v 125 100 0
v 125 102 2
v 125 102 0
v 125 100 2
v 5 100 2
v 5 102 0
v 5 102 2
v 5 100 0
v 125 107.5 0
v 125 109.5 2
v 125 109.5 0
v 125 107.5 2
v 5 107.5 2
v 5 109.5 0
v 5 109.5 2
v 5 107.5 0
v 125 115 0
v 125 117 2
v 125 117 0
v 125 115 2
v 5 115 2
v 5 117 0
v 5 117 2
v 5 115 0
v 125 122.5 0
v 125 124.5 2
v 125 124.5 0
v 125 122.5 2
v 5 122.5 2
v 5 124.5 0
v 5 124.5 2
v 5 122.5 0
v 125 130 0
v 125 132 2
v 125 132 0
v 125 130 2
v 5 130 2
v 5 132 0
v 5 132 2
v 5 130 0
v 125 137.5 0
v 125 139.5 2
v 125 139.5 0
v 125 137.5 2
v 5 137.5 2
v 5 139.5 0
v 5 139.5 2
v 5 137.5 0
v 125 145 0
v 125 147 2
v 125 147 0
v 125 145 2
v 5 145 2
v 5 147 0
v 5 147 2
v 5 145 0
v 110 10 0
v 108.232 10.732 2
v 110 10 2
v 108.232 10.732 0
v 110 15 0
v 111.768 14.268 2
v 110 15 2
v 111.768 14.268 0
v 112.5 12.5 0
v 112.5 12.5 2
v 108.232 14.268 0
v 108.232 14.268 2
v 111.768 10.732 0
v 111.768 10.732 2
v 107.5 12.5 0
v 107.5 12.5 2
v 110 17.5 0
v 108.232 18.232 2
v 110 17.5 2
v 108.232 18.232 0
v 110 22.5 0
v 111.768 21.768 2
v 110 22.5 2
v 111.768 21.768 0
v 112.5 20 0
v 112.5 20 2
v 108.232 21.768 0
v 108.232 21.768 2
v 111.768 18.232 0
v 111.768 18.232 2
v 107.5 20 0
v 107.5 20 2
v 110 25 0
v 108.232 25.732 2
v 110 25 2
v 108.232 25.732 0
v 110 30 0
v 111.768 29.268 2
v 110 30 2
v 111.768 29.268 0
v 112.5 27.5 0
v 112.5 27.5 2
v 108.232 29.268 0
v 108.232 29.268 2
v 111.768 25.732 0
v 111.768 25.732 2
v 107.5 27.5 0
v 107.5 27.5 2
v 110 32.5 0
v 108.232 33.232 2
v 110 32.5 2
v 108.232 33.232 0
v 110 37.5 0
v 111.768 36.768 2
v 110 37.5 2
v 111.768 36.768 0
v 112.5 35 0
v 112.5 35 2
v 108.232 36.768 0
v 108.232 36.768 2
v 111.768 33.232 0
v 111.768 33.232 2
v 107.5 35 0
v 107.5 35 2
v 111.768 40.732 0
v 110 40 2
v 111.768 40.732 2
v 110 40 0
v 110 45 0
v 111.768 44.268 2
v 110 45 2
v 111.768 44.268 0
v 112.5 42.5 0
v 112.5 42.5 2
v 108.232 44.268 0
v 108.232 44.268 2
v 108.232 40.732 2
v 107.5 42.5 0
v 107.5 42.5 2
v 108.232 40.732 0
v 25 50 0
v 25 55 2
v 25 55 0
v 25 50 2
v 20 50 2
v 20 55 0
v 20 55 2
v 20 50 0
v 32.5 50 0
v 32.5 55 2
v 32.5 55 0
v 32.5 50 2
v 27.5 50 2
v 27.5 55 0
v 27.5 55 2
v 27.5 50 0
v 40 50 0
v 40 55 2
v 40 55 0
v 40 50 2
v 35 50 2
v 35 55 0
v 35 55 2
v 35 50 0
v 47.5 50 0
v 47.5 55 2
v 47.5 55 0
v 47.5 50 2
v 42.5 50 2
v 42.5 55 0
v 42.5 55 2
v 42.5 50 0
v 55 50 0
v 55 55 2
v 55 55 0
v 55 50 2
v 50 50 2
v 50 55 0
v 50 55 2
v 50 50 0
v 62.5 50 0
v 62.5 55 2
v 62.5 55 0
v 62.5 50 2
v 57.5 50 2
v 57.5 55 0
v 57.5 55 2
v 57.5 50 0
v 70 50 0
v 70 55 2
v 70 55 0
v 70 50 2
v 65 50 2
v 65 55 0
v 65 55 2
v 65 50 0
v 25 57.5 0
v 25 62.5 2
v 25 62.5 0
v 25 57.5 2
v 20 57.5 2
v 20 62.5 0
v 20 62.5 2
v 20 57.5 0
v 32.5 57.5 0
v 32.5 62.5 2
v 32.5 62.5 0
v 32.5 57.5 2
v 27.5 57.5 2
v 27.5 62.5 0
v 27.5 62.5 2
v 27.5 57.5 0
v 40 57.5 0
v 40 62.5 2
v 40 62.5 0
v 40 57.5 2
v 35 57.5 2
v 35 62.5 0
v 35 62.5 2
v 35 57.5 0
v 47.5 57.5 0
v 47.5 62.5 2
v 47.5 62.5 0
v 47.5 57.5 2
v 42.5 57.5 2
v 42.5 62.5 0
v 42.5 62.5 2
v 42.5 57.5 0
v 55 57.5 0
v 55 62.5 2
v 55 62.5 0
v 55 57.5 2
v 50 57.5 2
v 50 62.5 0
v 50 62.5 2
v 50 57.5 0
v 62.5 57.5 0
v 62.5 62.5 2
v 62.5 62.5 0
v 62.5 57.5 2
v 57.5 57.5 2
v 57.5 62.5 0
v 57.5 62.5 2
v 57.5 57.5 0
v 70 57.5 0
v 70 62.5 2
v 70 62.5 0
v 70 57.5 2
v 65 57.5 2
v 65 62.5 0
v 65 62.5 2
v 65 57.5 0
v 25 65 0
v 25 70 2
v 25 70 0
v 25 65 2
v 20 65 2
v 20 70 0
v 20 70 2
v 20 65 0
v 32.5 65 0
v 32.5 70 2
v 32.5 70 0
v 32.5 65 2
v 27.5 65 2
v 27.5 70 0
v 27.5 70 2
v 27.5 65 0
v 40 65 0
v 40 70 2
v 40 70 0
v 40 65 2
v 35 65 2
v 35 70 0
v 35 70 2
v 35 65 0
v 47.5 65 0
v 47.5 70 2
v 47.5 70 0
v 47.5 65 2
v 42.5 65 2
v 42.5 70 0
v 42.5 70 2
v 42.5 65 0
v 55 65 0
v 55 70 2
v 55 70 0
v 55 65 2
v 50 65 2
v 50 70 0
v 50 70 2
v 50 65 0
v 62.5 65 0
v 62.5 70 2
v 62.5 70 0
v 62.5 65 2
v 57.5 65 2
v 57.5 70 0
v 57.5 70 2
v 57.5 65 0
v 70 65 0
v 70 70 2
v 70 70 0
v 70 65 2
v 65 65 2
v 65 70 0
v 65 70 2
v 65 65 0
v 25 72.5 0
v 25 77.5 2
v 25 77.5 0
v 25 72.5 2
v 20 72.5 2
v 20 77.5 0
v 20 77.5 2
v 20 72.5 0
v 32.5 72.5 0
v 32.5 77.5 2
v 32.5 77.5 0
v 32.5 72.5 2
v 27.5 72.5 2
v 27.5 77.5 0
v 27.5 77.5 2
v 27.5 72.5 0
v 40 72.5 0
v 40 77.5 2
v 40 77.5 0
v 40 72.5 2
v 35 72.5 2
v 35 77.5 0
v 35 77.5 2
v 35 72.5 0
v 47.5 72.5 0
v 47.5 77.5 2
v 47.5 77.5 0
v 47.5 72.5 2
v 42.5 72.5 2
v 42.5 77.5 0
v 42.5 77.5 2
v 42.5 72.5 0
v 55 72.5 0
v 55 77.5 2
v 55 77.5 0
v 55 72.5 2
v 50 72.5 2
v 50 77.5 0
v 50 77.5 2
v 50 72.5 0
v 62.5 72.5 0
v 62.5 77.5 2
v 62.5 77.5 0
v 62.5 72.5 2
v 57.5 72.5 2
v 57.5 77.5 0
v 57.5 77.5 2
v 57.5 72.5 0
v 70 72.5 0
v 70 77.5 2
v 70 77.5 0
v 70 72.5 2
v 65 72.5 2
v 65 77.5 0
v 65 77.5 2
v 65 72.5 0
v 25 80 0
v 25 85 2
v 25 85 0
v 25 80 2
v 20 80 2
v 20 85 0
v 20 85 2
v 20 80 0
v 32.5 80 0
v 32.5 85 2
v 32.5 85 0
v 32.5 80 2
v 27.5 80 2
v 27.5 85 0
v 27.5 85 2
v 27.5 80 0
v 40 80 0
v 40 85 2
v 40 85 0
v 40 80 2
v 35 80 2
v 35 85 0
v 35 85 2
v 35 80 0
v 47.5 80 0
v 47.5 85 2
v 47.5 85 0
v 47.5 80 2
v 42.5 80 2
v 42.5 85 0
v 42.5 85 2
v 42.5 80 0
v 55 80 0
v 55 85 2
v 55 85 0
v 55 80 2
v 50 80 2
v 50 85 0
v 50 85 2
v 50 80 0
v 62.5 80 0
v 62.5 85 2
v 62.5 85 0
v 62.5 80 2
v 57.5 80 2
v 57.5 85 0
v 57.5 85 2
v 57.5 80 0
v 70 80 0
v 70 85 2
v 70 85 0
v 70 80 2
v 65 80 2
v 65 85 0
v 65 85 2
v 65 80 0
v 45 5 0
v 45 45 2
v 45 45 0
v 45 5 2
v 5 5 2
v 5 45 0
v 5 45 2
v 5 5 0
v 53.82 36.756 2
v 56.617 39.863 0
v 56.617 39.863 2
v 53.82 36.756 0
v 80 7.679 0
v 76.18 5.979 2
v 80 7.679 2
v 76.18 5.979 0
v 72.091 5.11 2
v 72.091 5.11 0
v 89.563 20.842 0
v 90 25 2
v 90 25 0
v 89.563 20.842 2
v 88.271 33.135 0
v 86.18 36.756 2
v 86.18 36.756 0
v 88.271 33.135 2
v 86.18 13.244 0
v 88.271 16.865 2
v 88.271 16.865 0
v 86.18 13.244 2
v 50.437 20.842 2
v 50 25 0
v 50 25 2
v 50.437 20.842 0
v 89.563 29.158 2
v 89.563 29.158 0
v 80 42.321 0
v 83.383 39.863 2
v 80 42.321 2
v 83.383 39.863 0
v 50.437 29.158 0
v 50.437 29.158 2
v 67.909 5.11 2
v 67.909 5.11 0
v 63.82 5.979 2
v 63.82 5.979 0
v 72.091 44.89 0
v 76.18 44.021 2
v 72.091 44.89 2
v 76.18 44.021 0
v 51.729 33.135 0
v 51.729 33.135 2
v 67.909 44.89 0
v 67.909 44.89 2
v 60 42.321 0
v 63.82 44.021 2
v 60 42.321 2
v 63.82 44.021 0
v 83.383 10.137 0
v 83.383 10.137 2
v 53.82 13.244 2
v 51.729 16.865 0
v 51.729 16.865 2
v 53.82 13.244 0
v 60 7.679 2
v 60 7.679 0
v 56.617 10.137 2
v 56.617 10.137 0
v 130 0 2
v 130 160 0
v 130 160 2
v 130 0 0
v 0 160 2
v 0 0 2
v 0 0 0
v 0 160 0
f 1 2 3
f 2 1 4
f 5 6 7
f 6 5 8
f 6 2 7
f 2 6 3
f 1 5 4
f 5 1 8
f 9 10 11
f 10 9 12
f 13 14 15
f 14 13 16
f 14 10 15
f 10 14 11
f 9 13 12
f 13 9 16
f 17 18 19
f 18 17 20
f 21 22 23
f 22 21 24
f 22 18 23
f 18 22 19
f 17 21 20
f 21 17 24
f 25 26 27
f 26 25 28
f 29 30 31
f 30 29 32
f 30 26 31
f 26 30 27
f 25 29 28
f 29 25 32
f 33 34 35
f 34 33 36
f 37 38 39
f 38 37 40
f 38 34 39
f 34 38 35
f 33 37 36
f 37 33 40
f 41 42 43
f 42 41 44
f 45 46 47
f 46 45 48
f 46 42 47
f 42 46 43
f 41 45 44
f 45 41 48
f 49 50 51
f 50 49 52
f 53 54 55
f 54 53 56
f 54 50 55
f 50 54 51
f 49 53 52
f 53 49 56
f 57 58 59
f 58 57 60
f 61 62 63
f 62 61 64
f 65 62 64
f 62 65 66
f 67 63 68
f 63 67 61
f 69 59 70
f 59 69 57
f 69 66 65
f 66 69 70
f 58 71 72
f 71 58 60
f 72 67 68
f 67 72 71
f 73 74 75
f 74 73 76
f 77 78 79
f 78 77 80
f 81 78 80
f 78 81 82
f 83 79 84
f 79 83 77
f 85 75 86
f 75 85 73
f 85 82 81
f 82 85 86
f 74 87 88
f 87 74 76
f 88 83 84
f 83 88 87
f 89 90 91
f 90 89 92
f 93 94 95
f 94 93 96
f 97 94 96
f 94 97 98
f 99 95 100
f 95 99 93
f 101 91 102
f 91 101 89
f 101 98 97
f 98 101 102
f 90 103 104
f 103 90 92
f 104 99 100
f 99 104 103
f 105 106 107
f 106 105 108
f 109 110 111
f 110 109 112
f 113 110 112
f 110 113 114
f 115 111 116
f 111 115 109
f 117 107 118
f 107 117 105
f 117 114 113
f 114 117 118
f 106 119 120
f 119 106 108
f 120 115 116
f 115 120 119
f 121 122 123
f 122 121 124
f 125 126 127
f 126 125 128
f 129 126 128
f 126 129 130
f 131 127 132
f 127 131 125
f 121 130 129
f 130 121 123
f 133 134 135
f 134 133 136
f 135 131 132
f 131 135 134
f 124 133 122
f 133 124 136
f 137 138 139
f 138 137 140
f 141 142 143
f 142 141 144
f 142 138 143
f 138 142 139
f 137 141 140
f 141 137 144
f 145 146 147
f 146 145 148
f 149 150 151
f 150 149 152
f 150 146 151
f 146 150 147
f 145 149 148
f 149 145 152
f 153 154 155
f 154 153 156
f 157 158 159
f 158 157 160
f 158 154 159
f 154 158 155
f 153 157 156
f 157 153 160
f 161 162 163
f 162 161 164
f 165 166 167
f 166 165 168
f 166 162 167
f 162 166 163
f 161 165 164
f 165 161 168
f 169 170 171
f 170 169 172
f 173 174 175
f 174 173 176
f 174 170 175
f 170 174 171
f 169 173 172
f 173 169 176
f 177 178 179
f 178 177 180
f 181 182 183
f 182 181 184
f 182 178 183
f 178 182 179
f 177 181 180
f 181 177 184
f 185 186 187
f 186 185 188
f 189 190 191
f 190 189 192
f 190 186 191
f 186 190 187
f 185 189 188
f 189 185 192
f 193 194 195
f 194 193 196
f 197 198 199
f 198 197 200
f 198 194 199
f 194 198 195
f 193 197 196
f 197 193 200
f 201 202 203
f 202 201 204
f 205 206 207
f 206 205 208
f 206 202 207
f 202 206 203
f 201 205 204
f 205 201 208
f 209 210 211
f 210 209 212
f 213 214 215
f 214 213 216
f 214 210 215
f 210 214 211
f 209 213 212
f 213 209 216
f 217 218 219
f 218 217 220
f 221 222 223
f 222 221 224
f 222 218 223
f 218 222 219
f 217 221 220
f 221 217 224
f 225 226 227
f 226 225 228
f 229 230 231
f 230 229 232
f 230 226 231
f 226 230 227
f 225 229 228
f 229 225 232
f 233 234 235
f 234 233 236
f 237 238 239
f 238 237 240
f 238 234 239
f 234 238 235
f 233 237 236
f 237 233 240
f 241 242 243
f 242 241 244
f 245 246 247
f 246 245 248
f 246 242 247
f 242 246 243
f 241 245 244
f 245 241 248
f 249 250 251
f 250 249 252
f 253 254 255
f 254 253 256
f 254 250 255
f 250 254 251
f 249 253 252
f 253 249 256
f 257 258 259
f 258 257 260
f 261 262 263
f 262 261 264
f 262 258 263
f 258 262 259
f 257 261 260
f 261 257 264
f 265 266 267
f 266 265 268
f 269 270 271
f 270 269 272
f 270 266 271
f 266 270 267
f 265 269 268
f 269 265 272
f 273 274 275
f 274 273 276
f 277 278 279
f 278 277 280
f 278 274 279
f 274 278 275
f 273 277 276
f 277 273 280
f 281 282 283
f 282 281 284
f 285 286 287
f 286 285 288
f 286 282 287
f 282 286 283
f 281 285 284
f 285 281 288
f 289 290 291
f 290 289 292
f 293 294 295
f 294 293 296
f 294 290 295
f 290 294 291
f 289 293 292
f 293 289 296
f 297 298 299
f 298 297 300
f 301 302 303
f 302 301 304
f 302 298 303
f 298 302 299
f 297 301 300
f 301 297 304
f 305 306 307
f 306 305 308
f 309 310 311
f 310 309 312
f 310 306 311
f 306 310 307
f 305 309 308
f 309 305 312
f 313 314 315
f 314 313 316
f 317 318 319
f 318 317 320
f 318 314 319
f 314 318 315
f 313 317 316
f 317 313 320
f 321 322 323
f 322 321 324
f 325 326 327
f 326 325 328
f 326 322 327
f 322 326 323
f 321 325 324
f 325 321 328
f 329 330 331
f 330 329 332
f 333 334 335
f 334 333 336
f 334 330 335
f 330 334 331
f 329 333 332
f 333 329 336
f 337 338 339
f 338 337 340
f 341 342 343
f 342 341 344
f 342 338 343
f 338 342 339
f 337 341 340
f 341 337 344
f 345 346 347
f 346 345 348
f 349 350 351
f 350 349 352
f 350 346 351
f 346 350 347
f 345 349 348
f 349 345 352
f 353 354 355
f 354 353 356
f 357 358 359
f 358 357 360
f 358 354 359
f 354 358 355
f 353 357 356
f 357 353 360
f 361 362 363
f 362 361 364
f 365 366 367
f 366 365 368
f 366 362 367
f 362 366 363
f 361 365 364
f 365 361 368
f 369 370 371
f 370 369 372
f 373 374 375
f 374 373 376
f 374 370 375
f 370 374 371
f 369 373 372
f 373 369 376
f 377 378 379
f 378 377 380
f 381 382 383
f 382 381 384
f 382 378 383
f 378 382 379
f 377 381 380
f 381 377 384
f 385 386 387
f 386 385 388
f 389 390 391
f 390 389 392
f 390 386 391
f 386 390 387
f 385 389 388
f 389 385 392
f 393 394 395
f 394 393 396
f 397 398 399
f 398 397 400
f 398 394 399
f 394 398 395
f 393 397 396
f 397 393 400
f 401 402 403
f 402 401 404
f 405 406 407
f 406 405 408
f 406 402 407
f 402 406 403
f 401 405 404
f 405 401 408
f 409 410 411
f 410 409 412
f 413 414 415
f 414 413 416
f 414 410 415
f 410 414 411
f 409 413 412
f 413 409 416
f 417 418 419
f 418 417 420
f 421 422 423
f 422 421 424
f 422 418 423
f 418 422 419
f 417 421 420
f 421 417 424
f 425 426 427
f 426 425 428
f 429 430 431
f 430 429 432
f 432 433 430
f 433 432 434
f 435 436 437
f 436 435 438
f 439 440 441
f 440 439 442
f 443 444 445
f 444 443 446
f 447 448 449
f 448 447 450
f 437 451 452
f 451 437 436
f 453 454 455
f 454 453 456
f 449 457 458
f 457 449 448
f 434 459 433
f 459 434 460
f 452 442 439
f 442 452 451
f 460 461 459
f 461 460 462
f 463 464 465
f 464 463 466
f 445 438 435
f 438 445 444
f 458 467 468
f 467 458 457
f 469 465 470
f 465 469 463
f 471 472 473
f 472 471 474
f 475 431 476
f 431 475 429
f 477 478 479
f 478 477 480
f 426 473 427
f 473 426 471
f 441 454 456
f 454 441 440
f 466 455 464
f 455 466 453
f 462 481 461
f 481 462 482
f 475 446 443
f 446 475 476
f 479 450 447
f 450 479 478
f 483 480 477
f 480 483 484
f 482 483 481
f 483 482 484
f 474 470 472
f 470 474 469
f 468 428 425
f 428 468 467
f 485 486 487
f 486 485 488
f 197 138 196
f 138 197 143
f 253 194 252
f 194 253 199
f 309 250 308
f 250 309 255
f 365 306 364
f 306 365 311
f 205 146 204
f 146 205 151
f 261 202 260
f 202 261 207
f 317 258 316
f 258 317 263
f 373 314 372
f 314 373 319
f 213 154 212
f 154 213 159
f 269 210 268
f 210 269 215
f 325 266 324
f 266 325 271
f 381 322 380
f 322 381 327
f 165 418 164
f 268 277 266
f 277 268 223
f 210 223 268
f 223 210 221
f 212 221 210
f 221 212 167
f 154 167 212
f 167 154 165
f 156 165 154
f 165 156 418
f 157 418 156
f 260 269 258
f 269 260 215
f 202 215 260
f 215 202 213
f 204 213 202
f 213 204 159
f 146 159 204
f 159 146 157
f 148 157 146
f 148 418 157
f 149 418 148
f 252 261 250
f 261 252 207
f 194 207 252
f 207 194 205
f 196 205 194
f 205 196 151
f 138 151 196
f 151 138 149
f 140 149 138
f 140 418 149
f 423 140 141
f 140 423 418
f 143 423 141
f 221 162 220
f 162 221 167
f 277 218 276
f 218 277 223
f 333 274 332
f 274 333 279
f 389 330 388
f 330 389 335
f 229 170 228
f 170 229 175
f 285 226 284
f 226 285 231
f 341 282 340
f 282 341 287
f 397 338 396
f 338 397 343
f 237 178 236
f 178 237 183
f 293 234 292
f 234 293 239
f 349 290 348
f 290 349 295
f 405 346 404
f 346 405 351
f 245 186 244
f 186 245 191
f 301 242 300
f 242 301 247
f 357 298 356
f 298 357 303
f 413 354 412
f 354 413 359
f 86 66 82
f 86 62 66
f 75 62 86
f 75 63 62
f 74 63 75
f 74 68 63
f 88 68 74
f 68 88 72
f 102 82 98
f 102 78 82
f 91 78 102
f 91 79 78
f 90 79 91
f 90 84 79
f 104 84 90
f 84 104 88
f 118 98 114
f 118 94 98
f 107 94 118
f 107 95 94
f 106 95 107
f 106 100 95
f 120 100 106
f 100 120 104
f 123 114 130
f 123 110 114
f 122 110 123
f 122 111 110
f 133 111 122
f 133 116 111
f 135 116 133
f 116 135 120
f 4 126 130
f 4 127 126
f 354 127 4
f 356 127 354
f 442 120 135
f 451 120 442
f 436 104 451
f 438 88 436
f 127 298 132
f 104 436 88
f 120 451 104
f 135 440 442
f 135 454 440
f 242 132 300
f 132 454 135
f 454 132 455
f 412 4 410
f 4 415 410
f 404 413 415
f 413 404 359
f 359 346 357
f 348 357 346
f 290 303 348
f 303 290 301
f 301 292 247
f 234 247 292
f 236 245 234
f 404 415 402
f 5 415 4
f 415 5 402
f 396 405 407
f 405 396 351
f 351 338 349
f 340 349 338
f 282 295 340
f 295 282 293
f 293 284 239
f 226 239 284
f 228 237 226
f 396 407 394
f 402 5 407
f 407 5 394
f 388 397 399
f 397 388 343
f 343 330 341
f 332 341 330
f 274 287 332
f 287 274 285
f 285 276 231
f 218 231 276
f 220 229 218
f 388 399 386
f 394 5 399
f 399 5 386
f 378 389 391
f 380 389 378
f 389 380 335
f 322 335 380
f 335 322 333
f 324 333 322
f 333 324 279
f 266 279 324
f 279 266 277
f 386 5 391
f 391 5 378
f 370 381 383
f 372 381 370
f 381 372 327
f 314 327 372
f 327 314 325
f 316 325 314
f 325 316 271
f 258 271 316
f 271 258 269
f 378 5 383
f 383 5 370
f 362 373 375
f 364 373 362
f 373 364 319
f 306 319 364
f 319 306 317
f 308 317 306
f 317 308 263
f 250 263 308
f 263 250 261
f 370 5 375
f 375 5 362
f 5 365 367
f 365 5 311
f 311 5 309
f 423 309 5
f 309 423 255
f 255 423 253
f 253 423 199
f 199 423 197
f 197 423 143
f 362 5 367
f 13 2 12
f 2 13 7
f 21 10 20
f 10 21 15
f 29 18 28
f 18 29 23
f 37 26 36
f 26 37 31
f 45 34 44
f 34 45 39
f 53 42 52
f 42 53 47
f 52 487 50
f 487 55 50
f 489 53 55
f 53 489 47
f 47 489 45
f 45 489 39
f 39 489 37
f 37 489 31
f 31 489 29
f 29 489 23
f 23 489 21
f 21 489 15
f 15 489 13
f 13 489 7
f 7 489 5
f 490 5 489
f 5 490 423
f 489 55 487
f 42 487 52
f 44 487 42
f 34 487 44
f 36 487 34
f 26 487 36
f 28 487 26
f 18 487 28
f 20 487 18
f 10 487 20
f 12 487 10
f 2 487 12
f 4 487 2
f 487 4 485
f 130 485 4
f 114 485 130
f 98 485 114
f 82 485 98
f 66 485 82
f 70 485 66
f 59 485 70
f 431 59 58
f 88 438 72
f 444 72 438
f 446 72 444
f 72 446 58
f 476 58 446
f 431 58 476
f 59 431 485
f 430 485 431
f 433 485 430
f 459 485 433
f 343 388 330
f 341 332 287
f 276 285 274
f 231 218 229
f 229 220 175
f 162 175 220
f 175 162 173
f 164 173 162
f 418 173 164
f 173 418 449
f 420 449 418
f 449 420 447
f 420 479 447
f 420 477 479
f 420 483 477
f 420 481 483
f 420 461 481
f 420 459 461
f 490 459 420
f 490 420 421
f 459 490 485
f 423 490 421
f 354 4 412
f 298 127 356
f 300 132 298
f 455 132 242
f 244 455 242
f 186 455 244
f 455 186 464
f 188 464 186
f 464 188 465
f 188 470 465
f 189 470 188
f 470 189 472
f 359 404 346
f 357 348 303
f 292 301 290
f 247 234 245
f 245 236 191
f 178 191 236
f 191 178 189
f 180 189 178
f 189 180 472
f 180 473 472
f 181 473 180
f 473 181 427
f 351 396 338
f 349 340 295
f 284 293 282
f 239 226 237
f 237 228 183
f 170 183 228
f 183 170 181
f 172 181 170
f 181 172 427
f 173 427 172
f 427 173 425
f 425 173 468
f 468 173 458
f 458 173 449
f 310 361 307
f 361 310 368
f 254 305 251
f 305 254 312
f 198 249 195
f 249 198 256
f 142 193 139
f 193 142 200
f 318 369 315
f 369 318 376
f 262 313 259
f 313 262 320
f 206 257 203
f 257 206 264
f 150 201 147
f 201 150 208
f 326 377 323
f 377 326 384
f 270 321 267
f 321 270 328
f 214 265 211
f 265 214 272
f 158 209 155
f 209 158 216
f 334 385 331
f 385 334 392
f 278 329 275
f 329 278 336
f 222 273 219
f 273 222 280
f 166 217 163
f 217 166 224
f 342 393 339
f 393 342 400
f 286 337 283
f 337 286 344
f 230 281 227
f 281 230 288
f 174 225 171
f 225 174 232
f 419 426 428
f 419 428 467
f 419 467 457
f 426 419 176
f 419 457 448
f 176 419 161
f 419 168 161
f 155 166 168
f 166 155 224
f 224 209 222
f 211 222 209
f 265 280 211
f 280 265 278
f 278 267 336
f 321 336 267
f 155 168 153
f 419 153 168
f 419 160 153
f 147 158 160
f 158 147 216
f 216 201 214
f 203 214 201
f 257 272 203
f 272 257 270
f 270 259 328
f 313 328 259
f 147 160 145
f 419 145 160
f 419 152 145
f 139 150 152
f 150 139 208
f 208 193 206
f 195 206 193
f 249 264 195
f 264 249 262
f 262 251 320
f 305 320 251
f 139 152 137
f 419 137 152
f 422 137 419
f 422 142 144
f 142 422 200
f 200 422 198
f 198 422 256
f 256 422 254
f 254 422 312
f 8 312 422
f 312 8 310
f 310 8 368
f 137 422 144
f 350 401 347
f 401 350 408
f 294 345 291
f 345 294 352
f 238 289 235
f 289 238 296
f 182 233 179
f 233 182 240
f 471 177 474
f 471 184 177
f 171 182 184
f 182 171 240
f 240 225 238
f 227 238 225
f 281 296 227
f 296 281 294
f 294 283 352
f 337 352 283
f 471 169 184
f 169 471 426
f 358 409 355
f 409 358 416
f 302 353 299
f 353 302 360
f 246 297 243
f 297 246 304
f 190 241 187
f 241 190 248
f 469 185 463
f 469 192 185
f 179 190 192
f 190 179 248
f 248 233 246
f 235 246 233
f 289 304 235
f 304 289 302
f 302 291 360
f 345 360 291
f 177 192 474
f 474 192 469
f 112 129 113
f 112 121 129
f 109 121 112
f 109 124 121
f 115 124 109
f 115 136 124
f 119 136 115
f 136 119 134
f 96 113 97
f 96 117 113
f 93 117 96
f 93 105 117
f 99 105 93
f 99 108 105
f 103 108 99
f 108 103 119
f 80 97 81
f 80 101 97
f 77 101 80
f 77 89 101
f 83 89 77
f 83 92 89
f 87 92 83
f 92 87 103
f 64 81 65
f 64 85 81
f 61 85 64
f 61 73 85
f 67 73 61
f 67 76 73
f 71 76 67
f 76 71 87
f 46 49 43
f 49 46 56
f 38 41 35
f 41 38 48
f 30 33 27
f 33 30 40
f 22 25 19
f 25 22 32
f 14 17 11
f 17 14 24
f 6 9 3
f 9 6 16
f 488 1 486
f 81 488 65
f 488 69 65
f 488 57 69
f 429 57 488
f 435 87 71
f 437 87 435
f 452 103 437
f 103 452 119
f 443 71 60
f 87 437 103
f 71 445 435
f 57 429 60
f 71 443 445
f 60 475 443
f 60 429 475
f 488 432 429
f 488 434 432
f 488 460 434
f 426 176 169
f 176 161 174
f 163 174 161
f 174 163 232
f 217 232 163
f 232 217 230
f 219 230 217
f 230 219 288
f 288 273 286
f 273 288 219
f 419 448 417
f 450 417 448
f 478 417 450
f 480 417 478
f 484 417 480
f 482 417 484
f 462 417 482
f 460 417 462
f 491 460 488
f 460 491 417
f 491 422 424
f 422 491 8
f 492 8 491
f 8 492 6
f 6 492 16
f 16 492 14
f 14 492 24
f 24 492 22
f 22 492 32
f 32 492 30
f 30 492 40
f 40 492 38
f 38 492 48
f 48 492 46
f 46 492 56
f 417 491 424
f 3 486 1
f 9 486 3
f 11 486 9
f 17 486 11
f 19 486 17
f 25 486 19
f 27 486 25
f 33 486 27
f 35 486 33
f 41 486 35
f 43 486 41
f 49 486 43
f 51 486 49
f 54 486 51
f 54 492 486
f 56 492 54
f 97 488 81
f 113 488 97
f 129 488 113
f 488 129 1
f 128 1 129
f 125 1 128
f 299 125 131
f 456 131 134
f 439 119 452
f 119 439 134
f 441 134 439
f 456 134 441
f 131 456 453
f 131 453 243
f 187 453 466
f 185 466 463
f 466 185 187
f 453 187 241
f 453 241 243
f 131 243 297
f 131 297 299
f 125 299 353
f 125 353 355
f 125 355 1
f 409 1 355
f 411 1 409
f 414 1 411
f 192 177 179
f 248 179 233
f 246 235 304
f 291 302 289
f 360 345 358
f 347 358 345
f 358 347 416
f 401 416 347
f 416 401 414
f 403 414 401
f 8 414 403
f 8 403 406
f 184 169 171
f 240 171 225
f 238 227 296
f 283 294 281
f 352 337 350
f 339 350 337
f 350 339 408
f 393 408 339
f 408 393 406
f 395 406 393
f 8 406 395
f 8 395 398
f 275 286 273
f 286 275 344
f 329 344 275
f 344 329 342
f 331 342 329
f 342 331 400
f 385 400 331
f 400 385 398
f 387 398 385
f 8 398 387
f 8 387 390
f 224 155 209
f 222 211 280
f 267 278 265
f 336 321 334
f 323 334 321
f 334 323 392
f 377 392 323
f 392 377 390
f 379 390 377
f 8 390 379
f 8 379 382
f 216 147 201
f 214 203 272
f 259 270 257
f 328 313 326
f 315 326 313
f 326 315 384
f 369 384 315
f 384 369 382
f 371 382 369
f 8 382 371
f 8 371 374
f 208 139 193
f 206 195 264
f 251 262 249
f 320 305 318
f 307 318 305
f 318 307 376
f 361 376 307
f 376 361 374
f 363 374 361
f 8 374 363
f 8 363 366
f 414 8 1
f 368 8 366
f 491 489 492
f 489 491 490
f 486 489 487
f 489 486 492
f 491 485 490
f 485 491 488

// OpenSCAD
SMIDGE = 5;
PENCIL_GAP = 2;
FULL_WIDTH = 130;
FULL_DEPTH = 160;
THICKNESS = 2;
MARGIN = 10;
SIDE_MARGIN = MARGIN/2;
TOP_MARGIN = MARGIN/2;
LINE_WIDTH = FULL_WIDTH - MARGIN;
DOTS_SPACING = 5;
LINES_SPACING = DOTS_SPACING * 1.5;
LINES_START = FULL_DEPTH/2;
SQUARE_SIZE = 40;
CIRCLE_SIZE = 40;
BULLET_SIZE = 5;
CIRCLE_X = MARGIN + SQUARE_SIZE + CIRCLE_SIZE/2;
BULLETS_X = FULL_WIDTH - MARGIN - BULLET_SIZE/2;
BULLETS_Y = MARGIN + SQUARE_SIZE;
CALENDAR_X = 10;
CALENDAR_Y = BULLETS_Y;
HOLE_THICKNESS = THICKNESS + SMIDGE;
WEEKS = 6;
DAYS = 9;//put 9 to get 7 squares - fix fix fix

module writing_line(y) {
  translate([SIDE_MARGIN, y, -SMIDGE/2]) {
    cube([LINE_WIDTH, PENCIL_GAP, HOLE_THICKNESS]);
    }
  }

module writing_lines(y0, section_end) {
  for (y = [y0 : LINES_SPACING : section_end]) {
    writing_line(y);
    }
  }

module square_hole(x, y, size) {
  translate([x, y, -SMIDGE/2]) {
    cube([size,size,HOLE_THICKNESS]);
    }
  }

module round_hole(x, y, size) {
  translate([x, y+size/2, -SMIDGE/2]) {
    cylinder(h=HOLE_THICKNESS, d=size);
    }
  }

module bullets(x, y0, section_end) {
  for (y = [y0 :  LINES_SPACING : section_end]) {
    round_hole(x,y,BULLET_SIZE); 
    }
  }

module calendar() {
  // I'm printing the file as a basic test but this module is wrong
  for (y = [CALENDAR_Y : LINES_SPACING : WEEKS*DOTS_SPACING + CALENDAR_Y]) {
    for (x = [CALENDAR_X : LINES_SPACING : DAYS*DOTS_SPACING + CALENDAR_X]) {
      square_hole(x + CALENDAR_X, y, DOTS_SPACING);
    }
  }
}

module cut_outs() {
  union() {
    writing_lines(100,150);
    square_hole(SIDE_MARGIN,TOP_MARGIN,SQUARE_SIZE);
    round_hole(CIRCLE_X,TOP_MARGIN,CIRCLE_SIZE);
    bullets(110, 10, SQUARE_SIZE);
    calendar();
    }
  }

module stencil() {
  difference() {
    cube([FULL_WIDTH, FULL_DEPTH, THICKNESS]);
    cut_outs();
    }
  }

stencil();
